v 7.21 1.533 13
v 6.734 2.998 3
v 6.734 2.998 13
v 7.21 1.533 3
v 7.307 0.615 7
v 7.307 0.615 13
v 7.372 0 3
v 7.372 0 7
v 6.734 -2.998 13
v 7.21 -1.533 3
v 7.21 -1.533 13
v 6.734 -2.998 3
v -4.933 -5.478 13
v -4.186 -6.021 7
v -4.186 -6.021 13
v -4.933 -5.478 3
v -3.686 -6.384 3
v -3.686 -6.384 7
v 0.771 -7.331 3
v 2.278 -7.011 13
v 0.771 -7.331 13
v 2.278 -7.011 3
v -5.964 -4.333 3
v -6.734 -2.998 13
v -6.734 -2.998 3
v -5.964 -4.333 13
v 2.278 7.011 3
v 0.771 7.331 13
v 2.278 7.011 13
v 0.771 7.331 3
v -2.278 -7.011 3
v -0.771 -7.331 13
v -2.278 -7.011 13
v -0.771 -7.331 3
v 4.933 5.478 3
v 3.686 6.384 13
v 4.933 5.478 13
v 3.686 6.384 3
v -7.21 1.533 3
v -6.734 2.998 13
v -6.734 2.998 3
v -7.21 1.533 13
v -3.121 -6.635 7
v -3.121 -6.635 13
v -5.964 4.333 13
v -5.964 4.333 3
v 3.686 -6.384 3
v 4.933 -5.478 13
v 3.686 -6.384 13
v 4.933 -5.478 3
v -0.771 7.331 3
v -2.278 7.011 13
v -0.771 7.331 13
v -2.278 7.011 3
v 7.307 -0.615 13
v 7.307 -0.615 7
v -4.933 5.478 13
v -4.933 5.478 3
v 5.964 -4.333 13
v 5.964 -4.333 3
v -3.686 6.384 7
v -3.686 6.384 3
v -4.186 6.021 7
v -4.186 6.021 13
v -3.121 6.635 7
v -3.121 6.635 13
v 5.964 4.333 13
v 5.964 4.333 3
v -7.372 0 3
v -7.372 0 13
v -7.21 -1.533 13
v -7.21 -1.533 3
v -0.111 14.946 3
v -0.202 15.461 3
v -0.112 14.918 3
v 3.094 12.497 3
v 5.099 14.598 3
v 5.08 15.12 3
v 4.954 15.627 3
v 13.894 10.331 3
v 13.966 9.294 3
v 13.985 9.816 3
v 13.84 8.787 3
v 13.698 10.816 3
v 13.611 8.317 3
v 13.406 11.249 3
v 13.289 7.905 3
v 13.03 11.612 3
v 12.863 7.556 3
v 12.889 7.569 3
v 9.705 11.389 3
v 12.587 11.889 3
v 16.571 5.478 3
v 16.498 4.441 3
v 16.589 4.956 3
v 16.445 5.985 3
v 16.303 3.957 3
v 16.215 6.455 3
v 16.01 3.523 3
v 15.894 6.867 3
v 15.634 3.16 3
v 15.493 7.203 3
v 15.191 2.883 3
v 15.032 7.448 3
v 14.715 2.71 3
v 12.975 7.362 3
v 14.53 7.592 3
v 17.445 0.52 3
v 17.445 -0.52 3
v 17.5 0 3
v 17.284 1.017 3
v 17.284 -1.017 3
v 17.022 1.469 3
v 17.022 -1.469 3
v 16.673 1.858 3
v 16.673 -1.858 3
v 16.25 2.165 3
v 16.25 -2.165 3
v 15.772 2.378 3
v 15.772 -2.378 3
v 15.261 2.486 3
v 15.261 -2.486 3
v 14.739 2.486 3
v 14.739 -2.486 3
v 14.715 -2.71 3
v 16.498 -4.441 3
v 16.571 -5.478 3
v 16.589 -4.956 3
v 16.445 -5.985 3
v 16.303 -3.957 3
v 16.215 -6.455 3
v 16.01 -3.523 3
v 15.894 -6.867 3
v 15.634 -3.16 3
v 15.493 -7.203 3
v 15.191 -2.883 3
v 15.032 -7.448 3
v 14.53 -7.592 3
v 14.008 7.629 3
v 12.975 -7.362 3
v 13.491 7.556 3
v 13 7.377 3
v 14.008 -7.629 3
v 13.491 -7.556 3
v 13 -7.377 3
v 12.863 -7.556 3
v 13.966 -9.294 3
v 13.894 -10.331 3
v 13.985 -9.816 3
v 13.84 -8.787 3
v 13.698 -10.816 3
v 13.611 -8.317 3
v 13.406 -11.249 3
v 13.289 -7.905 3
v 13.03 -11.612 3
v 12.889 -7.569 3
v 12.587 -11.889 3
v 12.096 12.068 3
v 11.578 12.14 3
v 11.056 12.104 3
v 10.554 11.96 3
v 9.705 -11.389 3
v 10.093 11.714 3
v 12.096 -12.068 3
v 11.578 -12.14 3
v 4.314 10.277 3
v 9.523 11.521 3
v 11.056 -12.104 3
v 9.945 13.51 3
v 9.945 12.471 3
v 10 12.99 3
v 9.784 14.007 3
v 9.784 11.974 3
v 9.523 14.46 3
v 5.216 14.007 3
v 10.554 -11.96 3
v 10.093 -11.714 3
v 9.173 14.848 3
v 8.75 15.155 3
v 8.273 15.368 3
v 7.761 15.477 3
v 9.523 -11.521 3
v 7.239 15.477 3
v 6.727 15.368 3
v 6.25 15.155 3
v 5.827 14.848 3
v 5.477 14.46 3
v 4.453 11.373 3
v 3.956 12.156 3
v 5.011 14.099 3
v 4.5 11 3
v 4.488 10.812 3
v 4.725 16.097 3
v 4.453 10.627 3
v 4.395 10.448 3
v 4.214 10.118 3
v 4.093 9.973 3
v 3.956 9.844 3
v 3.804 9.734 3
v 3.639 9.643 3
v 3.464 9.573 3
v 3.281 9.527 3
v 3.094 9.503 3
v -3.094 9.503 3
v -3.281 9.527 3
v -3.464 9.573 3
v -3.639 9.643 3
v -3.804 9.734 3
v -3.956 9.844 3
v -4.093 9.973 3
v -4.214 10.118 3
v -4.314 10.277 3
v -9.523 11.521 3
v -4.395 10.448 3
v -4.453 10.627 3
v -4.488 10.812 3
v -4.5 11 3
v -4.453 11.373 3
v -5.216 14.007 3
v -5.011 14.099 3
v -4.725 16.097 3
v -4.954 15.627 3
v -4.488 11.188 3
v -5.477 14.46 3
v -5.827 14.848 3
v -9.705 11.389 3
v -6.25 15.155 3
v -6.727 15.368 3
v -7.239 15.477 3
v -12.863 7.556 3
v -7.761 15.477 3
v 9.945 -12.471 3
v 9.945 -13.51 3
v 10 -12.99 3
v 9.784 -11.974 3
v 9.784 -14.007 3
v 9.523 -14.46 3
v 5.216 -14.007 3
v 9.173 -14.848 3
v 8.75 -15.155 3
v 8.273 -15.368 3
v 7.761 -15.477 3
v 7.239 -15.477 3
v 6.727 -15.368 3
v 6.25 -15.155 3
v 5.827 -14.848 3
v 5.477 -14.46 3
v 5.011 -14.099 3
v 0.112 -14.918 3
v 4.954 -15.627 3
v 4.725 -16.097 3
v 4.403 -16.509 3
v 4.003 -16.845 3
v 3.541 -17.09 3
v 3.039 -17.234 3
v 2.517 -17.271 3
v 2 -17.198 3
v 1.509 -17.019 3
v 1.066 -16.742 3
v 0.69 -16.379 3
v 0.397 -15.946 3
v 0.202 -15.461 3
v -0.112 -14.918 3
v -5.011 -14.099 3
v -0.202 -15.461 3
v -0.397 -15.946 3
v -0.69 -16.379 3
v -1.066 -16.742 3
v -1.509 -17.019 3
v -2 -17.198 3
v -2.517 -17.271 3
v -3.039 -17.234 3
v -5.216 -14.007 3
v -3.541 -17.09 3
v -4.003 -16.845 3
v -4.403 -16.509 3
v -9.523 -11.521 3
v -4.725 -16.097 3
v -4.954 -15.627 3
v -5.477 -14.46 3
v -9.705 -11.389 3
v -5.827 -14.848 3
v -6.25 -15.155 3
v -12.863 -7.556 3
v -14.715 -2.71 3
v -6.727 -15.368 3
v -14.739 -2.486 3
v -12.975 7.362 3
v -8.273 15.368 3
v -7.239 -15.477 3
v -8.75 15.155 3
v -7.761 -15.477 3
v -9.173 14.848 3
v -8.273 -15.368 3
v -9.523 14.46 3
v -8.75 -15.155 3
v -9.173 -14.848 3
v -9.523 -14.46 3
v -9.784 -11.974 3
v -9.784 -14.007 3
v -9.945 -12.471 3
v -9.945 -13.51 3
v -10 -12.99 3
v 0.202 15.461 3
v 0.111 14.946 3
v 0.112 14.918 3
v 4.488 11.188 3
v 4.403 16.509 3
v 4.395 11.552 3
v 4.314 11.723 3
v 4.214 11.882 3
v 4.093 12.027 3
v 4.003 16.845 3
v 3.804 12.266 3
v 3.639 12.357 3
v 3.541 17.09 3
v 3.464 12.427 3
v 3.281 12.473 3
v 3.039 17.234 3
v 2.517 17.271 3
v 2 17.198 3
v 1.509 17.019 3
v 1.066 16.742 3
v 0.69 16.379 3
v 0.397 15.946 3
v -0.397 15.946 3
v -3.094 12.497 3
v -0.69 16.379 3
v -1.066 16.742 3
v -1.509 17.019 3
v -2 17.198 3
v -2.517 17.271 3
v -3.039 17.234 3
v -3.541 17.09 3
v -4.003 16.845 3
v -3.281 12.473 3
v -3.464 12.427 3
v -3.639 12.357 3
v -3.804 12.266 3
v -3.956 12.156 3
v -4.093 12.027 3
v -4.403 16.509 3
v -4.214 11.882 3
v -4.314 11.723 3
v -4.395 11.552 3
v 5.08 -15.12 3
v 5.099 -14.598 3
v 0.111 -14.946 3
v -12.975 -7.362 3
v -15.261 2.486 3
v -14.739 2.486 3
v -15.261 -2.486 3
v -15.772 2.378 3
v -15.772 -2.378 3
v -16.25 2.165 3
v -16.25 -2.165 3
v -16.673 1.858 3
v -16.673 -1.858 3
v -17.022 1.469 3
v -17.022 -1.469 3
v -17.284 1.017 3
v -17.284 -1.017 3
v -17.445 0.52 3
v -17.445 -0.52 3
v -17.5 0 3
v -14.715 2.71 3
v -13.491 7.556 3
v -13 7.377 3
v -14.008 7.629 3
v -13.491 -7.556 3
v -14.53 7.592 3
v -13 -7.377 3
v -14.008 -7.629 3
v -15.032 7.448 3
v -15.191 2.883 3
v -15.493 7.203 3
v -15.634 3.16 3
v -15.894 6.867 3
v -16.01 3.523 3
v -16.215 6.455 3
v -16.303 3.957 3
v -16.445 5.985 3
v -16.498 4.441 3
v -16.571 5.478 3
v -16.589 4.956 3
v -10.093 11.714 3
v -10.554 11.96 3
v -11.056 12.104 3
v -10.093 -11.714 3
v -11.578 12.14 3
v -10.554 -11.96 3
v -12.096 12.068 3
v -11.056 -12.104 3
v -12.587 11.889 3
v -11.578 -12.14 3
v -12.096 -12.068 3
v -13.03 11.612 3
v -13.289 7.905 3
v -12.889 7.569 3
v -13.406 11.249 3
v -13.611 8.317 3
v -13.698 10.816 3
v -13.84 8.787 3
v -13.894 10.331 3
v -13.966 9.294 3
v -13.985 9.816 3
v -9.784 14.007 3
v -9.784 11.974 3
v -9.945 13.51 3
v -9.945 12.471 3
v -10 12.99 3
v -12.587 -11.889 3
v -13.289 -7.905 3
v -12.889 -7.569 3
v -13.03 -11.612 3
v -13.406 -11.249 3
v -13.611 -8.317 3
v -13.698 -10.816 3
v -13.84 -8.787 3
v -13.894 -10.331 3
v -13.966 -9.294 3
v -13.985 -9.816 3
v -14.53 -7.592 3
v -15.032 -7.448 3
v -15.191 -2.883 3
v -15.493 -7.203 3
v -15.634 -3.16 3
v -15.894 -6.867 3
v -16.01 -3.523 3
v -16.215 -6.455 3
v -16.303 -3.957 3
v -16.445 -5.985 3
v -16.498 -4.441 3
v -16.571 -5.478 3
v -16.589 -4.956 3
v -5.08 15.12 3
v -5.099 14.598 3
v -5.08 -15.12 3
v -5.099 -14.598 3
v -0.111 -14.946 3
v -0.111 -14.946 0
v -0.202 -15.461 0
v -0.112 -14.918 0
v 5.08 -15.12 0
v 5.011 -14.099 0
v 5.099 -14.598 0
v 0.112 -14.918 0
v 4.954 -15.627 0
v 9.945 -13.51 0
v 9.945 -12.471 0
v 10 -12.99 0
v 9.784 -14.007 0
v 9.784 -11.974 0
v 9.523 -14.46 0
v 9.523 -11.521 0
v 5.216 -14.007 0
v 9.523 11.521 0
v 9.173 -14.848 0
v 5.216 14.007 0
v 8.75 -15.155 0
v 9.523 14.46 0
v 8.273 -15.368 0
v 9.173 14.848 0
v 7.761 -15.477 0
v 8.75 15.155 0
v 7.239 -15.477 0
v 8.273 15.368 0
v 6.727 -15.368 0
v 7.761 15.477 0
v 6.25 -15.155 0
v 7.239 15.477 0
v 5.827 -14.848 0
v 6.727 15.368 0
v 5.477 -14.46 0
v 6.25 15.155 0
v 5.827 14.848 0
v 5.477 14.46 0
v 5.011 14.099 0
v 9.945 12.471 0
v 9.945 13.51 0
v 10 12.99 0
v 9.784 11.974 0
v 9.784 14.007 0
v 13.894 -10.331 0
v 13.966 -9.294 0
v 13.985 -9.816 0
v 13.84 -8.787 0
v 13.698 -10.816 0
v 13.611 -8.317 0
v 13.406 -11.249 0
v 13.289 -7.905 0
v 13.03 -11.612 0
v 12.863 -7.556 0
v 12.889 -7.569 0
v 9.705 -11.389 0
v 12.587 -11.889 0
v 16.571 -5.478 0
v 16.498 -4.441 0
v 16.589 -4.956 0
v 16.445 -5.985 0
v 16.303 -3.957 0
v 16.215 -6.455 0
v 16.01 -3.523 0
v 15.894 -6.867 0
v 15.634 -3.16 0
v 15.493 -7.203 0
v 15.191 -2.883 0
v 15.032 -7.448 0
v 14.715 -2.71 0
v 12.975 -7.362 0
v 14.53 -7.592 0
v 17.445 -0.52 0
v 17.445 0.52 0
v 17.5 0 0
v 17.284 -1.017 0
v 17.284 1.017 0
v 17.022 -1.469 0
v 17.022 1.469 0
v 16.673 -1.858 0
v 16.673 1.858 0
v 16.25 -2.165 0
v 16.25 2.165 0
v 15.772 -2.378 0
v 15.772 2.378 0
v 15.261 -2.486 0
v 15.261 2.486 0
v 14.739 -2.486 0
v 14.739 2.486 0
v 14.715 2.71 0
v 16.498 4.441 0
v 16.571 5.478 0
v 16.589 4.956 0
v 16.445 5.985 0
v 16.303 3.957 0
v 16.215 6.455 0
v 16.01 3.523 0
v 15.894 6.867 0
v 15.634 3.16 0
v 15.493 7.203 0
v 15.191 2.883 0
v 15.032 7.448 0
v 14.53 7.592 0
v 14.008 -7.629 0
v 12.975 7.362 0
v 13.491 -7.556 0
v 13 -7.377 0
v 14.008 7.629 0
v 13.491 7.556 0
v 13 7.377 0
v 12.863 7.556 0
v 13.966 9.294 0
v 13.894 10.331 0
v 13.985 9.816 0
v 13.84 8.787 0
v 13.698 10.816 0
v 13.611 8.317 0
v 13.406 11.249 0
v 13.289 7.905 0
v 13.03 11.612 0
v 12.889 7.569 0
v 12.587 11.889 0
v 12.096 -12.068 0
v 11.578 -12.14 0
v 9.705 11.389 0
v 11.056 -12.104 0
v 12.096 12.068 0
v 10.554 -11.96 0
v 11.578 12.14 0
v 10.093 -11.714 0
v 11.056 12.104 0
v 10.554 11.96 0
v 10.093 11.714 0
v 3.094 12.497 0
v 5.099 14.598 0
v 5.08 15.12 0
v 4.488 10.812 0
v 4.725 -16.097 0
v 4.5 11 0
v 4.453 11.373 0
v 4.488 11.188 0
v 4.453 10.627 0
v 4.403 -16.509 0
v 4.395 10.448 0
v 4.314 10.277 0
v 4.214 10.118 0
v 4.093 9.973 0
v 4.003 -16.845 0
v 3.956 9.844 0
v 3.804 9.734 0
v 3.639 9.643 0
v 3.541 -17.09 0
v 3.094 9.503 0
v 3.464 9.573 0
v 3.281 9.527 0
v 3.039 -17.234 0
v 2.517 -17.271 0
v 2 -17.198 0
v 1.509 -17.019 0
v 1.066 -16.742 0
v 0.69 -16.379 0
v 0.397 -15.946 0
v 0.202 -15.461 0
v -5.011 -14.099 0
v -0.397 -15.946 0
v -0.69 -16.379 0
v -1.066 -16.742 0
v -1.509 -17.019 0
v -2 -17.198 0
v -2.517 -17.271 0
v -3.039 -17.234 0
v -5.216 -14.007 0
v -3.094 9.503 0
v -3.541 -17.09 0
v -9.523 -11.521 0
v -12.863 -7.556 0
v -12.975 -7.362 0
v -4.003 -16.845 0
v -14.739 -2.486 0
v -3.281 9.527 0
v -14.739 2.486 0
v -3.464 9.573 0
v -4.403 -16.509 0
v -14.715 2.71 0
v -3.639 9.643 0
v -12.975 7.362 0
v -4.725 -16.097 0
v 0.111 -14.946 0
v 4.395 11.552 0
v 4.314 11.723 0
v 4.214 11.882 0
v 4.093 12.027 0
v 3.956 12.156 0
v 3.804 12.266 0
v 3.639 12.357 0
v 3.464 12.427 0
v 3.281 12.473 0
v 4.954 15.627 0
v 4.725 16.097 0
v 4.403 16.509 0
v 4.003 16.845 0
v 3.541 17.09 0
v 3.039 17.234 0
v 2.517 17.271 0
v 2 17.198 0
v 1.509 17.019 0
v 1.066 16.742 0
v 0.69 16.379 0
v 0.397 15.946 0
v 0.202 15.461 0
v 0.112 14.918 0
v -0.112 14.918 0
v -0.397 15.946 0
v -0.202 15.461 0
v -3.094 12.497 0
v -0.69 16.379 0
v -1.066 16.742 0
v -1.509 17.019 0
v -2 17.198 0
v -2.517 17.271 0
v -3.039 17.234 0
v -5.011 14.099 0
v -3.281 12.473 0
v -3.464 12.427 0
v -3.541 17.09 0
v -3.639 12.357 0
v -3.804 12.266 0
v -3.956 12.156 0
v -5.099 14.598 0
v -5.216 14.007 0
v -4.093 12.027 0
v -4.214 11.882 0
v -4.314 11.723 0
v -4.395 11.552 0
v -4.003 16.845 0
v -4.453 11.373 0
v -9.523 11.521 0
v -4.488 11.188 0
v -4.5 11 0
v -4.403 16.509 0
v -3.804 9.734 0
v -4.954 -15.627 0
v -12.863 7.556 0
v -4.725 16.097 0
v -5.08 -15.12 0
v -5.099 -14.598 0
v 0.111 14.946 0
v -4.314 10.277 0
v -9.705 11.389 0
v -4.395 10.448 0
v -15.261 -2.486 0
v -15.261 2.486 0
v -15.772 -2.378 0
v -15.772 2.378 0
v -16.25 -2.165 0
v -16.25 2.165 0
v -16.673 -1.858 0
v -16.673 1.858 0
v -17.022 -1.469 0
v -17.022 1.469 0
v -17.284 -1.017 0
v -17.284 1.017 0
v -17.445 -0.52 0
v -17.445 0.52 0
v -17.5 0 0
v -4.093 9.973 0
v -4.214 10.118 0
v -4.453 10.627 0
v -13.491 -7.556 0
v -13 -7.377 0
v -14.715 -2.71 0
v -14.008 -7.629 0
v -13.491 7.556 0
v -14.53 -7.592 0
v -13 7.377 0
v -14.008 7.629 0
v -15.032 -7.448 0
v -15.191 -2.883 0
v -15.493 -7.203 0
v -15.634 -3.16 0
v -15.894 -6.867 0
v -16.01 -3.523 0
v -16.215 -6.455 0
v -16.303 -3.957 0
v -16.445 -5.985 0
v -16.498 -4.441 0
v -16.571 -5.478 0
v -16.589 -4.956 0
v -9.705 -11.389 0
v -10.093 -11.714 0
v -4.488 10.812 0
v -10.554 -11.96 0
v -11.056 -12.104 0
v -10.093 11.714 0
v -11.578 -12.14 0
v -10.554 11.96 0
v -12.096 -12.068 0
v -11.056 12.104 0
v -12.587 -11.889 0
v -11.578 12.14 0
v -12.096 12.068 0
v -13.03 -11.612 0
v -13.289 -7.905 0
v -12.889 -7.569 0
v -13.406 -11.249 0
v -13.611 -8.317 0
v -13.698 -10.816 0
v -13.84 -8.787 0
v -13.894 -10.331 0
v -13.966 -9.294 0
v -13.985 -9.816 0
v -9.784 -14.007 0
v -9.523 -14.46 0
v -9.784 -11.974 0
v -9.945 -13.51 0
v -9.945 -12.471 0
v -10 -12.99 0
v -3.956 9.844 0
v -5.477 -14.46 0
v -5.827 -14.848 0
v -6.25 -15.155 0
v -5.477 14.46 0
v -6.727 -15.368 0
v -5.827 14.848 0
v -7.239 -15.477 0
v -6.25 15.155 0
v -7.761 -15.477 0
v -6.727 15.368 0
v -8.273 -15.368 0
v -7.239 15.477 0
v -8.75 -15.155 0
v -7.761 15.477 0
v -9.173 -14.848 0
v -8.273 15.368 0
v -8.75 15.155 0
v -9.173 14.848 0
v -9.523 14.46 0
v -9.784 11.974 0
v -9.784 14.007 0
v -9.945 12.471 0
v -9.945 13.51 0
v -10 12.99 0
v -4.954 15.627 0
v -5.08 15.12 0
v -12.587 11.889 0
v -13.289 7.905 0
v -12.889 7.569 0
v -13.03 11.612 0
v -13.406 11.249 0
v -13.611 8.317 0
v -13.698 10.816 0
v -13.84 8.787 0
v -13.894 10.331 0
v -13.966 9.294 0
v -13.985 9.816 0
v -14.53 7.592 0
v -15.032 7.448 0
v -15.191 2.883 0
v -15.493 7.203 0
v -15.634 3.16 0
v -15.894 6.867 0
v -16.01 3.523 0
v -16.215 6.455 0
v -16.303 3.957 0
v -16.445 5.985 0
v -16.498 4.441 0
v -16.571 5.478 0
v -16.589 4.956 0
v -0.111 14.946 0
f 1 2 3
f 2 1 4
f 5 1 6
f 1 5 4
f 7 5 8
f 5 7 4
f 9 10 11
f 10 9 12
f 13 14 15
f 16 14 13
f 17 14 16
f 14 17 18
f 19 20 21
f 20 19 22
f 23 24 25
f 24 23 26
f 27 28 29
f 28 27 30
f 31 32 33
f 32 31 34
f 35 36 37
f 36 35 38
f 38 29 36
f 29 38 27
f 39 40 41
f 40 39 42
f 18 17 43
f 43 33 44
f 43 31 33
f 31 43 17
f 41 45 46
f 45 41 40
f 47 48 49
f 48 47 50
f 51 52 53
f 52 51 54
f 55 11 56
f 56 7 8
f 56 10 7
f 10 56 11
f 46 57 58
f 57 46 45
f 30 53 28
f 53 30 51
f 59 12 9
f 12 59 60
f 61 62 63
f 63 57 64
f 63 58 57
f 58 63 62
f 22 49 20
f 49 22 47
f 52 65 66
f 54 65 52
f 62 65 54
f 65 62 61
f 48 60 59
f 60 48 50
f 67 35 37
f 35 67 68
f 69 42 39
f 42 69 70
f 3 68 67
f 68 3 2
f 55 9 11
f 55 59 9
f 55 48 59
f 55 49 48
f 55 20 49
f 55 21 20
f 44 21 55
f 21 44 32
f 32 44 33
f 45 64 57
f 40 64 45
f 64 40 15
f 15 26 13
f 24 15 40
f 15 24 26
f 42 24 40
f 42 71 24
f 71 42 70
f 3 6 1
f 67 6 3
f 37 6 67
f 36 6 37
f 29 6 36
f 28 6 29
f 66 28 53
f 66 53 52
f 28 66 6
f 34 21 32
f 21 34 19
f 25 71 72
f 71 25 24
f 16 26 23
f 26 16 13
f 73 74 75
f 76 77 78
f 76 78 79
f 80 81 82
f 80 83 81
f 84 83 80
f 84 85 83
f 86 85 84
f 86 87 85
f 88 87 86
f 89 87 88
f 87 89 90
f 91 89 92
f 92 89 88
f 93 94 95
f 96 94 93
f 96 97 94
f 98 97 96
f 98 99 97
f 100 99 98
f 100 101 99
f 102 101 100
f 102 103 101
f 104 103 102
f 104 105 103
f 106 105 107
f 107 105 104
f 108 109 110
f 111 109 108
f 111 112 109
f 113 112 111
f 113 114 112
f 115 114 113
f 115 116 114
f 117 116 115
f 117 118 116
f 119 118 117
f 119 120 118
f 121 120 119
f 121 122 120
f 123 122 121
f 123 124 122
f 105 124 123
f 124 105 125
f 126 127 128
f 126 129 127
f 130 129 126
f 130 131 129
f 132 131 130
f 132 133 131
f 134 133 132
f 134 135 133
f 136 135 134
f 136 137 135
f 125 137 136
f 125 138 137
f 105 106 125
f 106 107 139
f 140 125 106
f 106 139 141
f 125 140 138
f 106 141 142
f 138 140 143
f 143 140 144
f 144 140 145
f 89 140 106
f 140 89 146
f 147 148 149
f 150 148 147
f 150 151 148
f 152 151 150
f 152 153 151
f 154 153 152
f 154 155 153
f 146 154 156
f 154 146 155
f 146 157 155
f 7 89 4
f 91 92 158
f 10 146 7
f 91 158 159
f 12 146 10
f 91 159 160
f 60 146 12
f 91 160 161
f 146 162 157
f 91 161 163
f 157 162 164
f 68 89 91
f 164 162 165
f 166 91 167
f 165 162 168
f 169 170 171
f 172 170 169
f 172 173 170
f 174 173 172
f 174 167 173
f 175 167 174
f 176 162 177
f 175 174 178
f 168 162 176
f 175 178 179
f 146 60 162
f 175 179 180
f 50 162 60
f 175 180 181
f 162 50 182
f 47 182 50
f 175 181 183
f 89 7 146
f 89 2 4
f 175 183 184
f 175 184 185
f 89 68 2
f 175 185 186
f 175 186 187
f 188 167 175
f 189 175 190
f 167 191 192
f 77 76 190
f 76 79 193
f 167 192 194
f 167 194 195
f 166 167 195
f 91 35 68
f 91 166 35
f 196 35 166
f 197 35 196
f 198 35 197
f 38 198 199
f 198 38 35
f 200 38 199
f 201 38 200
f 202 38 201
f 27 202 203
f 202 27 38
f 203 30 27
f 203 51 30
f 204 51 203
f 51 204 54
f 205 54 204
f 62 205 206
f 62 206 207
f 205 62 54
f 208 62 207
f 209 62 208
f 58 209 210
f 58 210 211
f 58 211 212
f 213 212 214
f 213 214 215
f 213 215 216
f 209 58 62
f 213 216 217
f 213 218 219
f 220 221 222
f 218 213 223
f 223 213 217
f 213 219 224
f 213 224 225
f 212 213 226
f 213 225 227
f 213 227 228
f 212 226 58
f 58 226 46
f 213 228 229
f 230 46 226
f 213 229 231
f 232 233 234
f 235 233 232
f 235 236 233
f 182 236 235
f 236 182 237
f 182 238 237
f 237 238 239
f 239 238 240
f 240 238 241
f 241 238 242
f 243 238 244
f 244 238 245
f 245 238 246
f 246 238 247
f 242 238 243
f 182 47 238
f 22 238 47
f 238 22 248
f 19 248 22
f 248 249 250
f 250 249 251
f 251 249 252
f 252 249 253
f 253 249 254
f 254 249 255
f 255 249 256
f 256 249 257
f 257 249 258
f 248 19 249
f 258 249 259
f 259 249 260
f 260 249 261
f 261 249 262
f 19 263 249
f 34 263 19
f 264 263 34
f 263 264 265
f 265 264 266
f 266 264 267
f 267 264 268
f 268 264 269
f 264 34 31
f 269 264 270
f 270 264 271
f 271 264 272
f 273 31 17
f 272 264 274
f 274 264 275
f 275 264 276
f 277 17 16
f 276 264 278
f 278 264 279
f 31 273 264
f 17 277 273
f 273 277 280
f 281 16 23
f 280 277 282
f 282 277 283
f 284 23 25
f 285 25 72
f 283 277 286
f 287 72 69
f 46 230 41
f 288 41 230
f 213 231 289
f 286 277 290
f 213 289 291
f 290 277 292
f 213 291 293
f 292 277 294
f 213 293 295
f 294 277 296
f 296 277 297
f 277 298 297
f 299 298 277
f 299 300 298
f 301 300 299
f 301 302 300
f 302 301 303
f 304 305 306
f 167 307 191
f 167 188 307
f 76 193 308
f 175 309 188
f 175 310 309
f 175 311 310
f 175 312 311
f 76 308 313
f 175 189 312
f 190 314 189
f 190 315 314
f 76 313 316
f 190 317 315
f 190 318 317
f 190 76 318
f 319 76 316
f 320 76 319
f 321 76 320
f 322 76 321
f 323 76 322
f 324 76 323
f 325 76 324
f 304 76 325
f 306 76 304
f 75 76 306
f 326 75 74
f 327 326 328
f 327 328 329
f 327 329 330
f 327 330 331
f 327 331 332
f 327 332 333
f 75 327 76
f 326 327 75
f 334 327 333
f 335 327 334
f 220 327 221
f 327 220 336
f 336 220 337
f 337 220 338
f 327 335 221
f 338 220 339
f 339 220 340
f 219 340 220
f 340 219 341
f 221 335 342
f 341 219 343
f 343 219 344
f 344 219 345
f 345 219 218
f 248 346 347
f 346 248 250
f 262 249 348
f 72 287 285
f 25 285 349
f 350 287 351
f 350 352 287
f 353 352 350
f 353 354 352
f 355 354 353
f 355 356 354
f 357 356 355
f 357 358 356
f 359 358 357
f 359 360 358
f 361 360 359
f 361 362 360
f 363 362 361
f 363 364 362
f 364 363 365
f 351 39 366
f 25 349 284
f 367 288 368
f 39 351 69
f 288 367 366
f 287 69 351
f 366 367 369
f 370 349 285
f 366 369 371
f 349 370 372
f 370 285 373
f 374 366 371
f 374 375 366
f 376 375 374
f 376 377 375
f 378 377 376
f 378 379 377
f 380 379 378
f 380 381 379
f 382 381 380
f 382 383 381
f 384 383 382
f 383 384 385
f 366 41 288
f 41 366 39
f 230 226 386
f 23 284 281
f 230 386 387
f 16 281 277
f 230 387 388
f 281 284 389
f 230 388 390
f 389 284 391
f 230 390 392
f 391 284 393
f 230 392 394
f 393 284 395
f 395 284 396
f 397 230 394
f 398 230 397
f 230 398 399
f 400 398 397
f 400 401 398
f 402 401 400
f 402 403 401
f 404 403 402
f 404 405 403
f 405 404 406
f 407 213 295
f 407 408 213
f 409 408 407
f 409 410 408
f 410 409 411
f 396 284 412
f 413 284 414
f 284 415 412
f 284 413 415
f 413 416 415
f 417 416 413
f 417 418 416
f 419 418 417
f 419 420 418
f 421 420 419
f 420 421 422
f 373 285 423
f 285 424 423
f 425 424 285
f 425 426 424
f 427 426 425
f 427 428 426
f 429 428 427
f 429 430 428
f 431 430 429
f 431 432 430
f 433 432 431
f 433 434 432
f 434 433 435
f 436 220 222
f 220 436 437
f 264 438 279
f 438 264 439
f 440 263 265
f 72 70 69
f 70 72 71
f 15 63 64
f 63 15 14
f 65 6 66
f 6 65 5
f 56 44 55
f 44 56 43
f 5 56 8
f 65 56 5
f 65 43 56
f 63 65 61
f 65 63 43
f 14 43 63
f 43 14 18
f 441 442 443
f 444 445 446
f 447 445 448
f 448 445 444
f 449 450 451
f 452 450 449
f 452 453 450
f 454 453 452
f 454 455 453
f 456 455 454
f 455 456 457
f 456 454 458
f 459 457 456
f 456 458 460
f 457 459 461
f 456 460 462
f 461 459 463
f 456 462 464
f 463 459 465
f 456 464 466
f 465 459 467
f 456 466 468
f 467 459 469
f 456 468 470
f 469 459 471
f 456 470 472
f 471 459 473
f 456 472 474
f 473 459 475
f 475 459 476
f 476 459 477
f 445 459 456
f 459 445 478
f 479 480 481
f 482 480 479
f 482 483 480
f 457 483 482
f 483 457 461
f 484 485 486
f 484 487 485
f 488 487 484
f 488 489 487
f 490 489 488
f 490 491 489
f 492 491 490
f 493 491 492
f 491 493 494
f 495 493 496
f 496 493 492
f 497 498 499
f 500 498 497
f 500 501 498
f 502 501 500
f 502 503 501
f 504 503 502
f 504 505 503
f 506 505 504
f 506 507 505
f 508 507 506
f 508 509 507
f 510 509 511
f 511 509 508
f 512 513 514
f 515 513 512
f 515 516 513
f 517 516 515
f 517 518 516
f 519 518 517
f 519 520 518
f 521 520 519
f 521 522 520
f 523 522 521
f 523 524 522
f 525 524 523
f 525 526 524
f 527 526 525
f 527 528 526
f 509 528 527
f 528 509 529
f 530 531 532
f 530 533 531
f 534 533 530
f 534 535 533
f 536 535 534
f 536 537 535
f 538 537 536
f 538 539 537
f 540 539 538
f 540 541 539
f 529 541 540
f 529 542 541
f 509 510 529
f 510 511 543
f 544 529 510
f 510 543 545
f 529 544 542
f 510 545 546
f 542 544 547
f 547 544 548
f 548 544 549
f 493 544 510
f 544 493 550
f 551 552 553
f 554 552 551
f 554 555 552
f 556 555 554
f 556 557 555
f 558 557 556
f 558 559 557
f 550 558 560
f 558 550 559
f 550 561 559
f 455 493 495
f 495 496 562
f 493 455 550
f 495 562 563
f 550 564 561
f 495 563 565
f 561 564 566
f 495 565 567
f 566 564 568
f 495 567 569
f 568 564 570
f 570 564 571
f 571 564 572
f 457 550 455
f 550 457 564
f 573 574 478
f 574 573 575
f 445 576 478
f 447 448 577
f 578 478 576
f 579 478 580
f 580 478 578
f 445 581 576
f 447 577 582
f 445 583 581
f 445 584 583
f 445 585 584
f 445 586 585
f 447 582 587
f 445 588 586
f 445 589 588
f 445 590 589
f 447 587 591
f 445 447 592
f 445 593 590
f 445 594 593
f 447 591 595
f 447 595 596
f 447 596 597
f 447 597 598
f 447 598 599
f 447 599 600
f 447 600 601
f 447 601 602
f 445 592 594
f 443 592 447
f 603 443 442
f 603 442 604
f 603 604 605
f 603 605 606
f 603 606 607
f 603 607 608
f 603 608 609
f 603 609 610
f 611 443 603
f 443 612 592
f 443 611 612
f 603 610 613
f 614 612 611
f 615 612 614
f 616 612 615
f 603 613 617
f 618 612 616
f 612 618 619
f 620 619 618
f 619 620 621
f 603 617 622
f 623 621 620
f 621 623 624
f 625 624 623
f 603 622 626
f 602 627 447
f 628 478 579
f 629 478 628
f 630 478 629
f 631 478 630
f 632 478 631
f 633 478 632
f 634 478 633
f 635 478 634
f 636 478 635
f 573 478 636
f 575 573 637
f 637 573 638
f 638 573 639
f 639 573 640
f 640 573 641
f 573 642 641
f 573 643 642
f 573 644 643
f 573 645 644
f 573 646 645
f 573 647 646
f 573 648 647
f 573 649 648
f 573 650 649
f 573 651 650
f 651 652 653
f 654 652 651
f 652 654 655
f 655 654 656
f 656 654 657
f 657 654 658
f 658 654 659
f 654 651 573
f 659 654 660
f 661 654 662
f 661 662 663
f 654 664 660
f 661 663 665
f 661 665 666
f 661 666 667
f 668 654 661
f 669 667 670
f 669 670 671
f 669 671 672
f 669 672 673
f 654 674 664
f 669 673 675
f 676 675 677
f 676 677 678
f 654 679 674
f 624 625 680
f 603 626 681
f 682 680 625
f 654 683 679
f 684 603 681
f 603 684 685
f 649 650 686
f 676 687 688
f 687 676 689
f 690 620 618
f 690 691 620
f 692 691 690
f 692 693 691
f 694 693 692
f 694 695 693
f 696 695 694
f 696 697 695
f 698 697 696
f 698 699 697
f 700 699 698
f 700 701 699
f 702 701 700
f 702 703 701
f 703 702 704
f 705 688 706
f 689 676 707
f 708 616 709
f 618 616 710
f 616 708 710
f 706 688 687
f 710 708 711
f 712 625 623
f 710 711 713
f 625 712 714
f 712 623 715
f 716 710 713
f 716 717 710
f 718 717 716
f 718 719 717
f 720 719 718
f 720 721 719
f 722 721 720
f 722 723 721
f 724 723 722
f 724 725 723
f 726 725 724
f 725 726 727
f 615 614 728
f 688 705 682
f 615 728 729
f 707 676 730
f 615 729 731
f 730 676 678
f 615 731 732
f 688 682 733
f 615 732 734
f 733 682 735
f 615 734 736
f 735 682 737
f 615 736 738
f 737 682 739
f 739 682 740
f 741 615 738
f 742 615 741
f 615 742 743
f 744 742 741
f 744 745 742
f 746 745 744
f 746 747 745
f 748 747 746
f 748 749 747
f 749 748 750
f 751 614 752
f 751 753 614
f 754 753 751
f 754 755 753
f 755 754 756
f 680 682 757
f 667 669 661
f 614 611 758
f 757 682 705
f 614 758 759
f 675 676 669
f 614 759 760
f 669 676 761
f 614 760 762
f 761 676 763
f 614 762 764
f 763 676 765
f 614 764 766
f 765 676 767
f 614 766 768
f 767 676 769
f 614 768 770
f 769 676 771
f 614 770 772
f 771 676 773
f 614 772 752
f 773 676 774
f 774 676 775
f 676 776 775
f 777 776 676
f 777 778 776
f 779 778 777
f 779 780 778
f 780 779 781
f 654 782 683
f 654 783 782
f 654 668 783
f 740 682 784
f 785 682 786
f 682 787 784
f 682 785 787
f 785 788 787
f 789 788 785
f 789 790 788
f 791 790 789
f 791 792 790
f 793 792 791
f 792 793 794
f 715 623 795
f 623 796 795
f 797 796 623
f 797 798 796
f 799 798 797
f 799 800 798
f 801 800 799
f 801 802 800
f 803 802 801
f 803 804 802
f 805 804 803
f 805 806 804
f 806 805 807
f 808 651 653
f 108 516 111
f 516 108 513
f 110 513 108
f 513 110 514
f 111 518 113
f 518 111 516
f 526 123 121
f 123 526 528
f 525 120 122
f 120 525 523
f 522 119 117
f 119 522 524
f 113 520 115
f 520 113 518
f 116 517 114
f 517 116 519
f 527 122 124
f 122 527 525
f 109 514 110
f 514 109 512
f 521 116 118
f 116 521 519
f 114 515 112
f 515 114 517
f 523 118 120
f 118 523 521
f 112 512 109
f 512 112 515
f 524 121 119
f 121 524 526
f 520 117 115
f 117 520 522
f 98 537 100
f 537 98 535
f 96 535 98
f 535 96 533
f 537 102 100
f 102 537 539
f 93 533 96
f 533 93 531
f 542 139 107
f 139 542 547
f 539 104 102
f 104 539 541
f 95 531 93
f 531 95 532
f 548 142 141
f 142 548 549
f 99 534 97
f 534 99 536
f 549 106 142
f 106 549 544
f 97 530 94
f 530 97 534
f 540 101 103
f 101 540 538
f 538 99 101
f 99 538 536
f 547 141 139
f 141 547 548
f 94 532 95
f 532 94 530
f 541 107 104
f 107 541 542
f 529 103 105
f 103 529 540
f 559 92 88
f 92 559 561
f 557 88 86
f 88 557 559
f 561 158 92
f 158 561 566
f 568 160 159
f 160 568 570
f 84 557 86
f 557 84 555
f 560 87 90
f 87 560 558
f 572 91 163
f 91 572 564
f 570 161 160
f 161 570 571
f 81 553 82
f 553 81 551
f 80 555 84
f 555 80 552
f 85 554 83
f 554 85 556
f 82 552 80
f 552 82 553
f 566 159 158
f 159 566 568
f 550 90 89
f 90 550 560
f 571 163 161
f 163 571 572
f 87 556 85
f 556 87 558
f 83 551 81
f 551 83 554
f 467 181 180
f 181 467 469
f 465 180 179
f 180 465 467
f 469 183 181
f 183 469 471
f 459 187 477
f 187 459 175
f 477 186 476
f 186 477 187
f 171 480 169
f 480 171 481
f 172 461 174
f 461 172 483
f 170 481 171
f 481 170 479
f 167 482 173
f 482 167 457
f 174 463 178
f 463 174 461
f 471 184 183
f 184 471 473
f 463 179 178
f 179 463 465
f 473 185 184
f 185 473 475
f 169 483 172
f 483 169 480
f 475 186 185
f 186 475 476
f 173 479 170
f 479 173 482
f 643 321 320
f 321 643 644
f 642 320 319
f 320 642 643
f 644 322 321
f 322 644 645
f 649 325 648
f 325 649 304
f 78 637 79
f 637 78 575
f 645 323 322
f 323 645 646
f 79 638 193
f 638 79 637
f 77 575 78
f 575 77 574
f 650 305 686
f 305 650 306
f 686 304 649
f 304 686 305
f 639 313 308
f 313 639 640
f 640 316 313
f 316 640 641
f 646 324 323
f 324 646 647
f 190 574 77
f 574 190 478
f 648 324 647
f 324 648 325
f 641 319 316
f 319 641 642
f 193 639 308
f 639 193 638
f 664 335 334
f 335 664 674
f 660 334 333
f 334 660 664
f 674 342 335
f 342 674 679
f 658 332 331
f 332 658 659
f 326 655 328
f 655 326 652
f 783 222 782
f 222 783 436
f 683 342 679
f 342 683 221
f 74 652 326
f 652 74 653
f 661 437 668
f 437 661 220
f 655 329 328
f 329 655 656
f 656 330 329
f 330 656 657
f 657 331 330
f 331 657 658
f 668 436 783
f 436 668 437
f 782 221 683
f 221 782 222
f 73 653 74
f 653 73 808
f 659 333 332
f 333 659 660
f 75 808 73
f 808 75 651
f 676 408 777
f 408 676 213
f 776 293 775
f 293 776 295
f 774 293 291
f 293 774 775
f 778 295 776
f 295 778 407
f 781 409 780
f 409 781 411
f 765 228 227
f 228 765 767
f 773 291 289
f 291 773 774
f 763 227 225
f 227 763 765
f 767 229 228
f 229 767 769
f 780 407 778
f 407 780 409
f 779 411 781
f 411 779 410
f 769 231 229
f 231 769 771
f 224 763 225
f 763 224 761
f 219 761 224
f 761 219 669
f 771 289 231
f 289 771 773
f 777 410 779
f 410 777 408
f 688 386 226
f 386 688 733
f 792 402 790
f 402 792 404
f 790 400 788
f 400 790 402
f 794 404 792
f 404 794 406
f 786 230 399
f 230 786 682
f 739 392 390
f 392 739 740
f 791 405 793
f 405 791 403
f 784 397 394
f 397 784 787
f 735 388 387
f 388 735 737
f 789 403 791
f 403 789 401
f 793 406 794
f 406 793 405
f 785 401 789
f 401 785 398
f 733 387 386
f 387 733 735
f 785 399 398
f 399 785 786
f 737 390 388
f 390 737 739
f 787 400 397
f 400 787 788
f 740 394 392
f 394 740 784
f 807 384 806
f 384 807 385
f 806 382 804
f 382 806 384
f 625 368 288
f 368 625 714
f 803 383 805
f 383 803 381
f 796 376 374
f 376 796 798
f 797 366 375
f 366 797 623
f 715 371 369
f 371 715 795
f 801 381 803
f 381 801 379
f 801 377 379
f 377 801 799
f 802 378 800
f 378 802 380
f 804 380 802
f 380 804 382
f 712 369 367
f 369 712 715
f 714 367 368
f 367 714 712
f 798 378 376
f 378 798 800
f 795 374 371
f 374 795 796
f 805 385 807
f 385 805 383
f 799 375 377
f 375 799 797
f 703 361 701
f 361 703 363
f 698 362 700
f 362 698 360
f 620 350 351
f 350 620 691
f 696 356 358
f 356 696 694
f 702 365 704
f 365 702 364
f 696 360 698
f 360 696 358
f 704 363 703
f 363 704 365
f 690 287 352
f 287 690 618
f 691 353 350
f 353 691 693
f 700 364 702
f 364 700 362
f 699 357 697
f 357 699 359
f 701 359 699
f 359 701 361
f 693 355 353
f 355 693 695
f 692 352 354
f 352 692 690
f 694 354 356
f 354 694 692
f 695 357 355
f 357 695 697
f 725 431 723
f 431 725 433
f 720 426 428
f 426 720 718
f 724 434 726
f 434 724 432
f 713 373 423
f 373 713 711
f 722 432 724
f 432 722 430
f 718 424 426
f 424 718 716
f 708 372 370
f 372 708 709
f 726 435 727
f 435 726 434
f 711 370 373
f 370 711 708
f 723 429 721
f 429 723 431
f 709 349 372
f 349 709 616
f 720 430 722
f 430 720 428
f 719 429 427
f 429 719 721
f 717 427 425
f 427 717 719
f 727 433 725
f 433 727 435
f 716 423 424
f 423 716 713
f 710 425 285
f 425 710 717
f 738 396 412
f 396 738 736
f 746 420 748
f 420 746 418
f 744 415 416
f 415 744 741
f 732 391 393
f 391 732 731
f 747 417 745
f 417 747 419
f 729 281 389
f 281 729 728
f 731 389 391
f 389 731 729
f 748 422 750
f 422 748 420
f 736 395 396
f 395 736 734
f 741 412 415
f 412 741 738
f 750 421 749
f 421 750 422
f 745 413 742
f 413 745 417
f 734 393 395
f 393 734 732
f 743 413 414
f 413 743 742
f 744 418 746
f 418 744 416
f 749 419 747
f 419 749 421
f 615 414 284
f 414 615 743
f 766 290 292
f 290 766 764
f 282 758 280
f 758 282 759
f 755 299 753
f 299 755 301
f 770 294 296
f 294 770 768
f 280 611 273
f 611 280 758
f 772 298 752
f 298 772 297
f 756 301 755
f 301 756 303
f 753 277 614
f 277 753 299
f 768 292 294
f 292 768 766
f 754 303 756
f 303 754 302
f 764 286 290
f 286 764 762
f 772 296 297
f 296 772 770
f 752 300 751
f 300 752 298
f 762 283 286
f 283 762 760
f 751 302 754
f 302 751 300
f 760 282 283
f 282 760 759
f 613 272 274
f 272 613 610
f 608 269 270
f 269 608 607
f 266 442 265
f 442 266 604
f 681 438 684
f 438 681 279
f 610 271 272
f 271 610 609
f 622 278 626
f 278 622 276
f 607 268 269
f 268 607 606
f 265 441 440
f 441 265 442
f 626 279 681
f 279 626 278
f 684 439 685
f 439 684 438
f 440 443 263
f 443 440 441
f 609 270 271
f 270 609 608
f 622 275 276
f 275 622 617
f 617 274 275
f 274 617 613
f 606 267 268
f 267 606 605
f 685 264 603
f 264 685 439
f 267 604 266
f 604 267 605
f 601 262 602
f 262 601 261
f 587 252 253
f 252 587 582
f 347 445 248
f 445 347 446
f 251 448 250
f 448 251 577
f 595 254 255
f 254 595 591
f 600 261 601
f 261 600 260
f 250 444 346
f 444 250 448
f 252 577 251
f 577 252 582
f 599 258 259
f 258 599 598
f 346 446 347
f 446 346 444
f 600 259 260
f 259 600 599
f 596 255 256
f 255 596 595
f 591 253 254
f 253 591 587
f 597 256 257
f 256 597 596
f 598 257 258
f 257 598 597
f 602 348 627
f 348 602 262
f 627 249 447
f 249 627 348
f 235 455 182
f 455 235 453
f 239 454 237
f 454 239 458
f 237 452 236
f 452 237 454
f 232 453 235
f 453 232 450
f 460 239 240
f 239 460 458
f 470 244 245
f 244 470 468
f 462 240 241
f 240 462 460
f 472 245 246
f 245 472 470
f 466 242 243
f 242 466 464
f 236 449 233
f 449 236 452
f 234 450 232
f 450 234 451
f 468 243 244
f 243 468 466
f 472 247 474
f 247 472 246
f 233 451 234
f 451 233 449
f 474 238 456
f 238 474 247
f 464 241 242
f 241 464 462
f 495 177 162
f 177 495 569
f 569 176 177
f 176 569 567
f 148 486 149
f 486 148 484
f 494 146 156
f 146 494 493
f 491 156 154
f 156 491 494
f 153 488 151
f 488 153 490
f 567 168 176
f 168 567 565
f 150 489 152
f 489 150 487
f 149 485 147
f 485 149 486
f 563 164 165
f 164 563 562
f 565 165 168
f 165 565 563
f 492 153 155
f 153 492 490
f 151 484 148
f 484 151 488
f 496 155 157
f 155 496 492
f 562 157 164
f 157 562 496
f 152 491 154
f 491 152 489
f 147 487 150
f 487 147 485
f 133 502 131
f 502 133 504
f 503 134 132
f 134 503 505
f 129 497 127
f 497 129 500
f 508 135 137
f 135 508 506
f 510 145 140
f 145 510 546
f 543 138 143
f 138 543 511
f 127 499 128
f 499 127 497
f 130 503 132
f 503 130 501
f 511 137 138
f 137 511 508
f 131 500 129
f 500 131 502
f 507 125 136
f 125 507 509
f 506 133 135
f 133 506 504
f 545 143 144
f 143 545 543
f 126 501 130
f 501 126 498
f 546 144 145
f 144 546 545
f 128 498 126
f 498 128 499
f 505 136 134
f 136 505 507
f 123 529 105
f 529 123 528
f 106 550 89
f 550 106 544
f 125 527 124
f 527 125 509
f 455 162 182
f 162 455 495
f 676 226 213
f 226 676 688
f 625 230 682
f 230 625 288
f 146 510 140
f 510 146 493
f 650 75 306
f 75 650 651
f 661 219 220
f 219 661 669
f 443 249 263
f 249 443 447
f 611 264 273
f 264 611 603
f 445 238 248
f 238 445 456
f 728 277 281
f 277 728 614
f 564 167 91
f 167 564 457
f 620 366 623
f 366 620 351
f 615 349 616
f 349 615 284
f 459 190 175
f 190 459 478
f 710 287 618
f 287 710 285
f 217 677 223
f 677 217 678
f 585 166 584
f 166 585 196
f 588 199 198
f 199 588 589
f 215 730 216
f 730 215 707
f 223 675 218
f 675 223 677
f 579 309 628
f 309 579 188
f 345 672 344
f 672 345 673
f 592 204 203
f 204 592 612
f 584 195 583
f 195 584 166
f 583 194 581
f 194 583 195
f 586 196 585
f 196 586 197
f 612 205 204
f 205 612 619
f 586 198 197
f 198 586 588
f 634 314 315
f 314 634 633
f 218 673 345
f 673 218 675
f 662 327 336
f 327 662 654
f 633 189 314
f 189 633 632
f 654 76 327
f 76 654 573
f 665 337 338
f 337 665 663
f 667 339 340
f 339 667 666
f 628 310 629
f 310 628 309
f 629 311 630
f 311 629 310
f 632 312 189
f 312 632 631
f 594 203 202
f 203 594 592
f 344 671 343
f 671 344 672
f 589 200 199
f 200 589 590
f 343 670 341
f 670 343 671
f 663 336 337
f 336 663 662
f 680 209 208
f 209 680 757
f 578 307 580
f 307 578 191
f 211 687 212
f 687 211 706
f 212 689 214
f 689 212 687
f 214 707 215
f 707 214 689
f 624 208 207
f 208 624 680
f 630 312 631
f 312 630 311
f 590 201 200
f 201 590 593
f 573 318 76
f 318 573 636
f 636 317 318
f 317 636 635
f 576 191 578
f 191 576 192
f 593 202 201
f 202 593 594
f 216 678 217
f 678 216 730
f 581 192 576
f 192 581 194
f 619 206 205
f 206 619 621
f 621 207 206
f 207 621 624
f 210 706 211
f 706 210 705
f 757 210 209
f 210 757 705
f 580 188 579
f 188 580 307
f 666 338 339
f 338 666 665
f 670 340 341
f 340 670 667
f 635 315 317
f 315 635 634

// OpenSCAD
kante = 14.5;
R = 1/sqrt(3)*kante;

difference(){
union(){
translate([0,0,3])
difference(){

cylinder(r=R-1,h=10,$fs=0.1);

translate([0,0,4])
  cylinder(r=R,h=6,$fn=3);
}

for(r = [0:20:360]){
    rotate([0,0,r])
        translate([15,0,0])
            cylinder(d=5,h=3, $fn=30);
}

difference(){
cylinder(r=15,h=3)

cylinder(r=3.8,h=4,$fn=6);
}
}

translate([0,11,0])
hull(){
translate([-3,0,0])
    cylinder(d=3,h=10,$fn=50);
translate([3,0,0])
    cylinder(d=3,h=10,$fn=50);
}
}
